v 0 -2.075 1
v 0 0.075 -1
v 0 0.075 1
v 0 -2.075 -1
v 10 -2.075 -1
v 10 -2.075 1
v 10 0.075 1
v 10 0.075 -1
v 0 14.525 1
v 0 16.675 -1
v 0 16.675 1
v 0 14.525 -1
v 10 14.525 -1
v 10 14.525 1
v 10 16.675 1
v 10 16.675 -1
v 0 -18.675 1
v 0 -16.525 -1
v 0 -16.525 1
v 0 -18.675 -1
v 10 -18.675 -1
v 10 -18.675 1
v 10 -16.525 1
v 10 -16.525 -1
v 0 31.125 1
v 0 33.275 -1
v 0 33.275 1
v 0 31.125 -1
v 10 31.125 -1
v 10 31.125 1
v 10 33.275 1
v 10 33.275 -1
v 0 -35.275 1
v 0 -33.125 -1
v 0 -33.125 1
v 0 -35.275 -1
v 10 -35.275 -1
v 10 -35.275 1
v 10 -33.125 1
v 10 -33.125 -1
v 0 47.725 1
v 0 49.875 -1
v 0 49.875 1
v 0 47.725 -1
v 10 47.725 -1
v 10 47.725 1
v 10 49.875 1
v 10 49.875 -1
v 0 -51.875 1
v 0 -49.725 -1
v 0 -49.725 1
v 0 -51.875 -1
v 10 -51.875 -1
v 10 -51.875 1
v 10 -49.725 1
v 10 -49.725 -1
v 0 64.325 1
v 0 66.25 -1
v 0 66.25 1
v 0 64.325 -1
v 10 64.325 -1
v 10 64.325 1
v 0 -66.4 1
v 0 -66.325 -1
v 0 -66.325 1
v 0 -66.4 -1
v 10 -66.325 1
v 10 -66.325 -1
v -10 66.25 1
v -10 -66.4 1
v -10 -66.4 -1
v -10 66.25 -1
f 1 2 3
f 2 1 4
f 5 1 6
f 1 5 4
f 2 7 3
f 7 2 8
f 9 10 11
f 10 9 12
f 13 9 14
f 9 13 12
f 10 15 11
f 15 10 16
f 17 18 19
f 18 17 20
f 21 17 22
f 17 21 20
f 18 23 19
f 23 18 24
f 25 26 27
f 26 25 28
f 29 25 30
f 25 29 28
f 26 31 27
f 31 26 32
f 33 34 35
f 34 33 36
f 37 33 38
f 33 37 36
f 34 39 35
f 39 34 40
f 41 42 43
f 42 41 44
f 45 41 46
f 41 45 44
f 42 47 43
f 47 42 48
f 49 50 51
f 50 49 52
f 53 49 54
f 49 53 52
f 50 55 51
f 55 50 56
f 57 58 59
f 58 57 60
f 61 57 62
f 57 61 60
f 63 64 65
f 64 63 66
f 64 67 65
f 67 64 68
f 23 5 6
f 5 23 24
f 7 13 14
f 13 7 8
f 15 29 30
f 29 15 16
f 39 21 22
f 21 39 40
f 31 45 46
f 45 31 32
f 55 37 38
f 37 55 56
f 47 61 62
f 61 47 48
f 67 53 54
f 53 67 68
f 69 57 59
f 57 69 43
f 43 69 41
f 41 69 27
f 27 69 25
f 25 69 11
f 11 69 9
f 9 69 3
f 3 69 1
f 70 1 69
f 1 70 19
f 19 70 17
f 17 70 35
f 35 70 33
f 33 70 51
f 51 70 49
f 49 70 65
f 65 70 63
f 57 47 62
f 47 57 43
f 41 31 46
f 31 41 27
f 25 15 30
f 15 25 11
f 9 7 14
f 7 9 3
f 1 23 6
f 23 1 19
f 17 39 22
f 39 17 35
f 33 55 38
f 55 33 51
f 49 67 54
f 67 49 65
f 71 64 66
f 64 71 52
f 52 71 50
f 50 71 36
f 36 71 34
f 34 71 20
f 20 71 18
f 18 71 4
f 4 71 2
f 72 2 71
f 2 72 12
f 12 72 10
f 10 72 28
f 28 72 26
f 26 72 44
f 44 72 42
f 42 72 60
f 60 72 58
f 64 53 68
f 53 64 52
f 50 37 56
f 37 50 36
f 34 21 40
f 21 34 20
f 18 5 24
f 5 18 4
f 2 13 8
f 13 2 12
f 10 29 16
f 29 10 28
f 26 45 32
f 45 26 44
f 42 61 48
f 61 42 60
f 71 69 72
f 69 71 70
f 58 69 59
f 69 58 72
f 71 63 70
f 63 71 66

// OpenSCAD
module bar (s)
{
    difference () {
        thickness = s.z;
        tolerance = 0.15;

        lengthTolerance = 0.15;
        translate ([0, -lengthTolerance/2, 0])
        cube ([s.x, s.y-lengthTolerance, s.z], center=true);

        // Offset is needed to make parts non-symetric.
        translate ([0, -s.z/2, 0]) {
            // Cut out in the middle
            translate ([s.x/2, 0, 0])
            rotate([90, 0, 0])
            cube ([s.x, 100, thickness+tolerance], center=true);
            
            // Rest of the cutouts
            for (i = [0: 17]) {
                translate ([s.x/2, i * 16.6, 0])
                rotate([90, 0, 0])
                cube ([s.x, 100, thickness+tolerance], center=true);

                translate ([s.x/2, -i * 16.6, 0])
                rotate([90, 0, 0])
                cube ([s.x, 100, thickness+tolerance], center=true);
            }
        }
    }
}


bar ([20, 16.6*8, 2]);
